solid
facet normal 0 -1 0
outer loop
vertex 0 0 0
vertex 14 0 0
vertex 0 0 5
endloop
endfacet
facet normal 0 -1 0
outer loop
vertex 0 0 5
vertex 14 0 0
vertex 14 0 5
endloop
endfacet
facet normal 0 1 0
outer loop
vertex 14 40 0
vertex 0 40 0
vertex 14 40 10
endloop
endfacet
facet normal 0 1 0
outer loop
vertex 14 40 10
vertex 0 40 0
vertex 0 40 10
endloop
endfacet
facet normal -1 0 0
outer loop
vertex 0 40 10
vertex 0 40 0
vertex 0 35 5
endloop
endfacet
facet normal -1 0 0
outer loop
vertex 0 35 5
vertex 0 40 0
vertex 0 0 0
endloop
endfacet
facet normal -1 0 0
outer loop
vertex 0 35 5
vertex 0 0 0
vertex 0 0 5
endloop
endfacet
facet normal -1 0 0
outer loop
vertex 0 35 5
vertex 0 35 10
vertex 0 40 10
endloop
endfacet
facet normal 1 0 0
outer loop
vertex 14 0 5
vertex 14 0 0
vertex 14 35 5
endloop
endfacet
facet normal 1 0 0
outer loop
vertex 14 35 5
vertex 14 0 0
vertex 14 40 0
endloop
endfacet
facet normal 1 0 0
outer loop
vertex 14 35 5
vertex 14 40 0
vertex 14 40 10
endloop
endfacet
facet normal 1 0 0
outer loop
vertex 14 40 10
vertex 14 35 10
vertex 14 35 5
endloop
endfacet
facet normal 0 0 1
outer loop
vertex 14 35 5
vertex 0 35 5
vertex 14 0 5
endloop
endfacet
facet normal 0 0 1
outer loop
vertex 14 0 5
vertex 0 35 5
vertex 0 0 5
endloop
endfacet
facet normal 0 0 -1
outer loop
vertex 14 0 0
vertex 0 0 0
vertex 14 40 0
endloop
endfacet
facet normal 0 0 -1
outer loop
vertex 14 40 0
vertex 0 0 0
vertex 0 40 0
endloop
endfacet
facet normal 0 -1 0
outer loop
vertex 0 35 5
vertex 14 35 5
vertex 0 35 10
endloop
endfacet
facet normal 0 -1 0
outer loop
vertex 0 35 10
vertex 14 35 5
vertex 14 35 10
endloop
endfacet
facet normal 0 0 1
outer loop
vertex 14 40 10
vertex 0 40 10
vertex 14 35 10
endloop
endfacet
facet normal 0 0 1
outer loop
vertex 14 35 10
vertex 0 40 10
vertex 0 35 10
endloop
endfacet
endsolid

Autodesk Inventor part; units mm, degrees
ref_plane "YZ Plane" through (0, 0, 0) normal (1, 0, 0) x (0, 1, 0)
ref_plane "XZ Plane" through (0, 0, 0) normal (0, 1, 0) x (-1, 0, 0)
ref_plane "XY Plane" through (0, 0, 0) normal (0, 0, 1) x (1, 0, 0)
sketch "Boceto1" plane through (0, 0, 0) normal (0, 0, 1) x (1, 0, 0)
  line L0 (0, 0) -> (14, 0)
  line L1 (14, 0) -> (14, 40)
  line L2 (14, 40) -> (0, 40)
  line L3 (0, 40) -> (0, 0)
  dimension "d0" = 14
  dimension "d1" = 40
extrude "Extrusión1" add sketch "Boceto1" along normal blind 5
sketch "Boceto2" plane through (0, 0, 5) normal (0, 0, 1) x (1, 0, 0)
  line L0 (14, 40) -> (0, 40) projected
  line L1 (14, 40) -> (0, 40)
  line L2 (0, 40) -> (0, 35)
  line L3 (0, 35) -> (14, 35)
  line L4 (14, 35) -> (14, 40)
  point P0 (0, 0)
  dimension "d4" = 14
  dimension "d5" = 5
extrude "Extrusión2" add sketch "Boceto2" along normal blind 5
properties part number "Pasador"
